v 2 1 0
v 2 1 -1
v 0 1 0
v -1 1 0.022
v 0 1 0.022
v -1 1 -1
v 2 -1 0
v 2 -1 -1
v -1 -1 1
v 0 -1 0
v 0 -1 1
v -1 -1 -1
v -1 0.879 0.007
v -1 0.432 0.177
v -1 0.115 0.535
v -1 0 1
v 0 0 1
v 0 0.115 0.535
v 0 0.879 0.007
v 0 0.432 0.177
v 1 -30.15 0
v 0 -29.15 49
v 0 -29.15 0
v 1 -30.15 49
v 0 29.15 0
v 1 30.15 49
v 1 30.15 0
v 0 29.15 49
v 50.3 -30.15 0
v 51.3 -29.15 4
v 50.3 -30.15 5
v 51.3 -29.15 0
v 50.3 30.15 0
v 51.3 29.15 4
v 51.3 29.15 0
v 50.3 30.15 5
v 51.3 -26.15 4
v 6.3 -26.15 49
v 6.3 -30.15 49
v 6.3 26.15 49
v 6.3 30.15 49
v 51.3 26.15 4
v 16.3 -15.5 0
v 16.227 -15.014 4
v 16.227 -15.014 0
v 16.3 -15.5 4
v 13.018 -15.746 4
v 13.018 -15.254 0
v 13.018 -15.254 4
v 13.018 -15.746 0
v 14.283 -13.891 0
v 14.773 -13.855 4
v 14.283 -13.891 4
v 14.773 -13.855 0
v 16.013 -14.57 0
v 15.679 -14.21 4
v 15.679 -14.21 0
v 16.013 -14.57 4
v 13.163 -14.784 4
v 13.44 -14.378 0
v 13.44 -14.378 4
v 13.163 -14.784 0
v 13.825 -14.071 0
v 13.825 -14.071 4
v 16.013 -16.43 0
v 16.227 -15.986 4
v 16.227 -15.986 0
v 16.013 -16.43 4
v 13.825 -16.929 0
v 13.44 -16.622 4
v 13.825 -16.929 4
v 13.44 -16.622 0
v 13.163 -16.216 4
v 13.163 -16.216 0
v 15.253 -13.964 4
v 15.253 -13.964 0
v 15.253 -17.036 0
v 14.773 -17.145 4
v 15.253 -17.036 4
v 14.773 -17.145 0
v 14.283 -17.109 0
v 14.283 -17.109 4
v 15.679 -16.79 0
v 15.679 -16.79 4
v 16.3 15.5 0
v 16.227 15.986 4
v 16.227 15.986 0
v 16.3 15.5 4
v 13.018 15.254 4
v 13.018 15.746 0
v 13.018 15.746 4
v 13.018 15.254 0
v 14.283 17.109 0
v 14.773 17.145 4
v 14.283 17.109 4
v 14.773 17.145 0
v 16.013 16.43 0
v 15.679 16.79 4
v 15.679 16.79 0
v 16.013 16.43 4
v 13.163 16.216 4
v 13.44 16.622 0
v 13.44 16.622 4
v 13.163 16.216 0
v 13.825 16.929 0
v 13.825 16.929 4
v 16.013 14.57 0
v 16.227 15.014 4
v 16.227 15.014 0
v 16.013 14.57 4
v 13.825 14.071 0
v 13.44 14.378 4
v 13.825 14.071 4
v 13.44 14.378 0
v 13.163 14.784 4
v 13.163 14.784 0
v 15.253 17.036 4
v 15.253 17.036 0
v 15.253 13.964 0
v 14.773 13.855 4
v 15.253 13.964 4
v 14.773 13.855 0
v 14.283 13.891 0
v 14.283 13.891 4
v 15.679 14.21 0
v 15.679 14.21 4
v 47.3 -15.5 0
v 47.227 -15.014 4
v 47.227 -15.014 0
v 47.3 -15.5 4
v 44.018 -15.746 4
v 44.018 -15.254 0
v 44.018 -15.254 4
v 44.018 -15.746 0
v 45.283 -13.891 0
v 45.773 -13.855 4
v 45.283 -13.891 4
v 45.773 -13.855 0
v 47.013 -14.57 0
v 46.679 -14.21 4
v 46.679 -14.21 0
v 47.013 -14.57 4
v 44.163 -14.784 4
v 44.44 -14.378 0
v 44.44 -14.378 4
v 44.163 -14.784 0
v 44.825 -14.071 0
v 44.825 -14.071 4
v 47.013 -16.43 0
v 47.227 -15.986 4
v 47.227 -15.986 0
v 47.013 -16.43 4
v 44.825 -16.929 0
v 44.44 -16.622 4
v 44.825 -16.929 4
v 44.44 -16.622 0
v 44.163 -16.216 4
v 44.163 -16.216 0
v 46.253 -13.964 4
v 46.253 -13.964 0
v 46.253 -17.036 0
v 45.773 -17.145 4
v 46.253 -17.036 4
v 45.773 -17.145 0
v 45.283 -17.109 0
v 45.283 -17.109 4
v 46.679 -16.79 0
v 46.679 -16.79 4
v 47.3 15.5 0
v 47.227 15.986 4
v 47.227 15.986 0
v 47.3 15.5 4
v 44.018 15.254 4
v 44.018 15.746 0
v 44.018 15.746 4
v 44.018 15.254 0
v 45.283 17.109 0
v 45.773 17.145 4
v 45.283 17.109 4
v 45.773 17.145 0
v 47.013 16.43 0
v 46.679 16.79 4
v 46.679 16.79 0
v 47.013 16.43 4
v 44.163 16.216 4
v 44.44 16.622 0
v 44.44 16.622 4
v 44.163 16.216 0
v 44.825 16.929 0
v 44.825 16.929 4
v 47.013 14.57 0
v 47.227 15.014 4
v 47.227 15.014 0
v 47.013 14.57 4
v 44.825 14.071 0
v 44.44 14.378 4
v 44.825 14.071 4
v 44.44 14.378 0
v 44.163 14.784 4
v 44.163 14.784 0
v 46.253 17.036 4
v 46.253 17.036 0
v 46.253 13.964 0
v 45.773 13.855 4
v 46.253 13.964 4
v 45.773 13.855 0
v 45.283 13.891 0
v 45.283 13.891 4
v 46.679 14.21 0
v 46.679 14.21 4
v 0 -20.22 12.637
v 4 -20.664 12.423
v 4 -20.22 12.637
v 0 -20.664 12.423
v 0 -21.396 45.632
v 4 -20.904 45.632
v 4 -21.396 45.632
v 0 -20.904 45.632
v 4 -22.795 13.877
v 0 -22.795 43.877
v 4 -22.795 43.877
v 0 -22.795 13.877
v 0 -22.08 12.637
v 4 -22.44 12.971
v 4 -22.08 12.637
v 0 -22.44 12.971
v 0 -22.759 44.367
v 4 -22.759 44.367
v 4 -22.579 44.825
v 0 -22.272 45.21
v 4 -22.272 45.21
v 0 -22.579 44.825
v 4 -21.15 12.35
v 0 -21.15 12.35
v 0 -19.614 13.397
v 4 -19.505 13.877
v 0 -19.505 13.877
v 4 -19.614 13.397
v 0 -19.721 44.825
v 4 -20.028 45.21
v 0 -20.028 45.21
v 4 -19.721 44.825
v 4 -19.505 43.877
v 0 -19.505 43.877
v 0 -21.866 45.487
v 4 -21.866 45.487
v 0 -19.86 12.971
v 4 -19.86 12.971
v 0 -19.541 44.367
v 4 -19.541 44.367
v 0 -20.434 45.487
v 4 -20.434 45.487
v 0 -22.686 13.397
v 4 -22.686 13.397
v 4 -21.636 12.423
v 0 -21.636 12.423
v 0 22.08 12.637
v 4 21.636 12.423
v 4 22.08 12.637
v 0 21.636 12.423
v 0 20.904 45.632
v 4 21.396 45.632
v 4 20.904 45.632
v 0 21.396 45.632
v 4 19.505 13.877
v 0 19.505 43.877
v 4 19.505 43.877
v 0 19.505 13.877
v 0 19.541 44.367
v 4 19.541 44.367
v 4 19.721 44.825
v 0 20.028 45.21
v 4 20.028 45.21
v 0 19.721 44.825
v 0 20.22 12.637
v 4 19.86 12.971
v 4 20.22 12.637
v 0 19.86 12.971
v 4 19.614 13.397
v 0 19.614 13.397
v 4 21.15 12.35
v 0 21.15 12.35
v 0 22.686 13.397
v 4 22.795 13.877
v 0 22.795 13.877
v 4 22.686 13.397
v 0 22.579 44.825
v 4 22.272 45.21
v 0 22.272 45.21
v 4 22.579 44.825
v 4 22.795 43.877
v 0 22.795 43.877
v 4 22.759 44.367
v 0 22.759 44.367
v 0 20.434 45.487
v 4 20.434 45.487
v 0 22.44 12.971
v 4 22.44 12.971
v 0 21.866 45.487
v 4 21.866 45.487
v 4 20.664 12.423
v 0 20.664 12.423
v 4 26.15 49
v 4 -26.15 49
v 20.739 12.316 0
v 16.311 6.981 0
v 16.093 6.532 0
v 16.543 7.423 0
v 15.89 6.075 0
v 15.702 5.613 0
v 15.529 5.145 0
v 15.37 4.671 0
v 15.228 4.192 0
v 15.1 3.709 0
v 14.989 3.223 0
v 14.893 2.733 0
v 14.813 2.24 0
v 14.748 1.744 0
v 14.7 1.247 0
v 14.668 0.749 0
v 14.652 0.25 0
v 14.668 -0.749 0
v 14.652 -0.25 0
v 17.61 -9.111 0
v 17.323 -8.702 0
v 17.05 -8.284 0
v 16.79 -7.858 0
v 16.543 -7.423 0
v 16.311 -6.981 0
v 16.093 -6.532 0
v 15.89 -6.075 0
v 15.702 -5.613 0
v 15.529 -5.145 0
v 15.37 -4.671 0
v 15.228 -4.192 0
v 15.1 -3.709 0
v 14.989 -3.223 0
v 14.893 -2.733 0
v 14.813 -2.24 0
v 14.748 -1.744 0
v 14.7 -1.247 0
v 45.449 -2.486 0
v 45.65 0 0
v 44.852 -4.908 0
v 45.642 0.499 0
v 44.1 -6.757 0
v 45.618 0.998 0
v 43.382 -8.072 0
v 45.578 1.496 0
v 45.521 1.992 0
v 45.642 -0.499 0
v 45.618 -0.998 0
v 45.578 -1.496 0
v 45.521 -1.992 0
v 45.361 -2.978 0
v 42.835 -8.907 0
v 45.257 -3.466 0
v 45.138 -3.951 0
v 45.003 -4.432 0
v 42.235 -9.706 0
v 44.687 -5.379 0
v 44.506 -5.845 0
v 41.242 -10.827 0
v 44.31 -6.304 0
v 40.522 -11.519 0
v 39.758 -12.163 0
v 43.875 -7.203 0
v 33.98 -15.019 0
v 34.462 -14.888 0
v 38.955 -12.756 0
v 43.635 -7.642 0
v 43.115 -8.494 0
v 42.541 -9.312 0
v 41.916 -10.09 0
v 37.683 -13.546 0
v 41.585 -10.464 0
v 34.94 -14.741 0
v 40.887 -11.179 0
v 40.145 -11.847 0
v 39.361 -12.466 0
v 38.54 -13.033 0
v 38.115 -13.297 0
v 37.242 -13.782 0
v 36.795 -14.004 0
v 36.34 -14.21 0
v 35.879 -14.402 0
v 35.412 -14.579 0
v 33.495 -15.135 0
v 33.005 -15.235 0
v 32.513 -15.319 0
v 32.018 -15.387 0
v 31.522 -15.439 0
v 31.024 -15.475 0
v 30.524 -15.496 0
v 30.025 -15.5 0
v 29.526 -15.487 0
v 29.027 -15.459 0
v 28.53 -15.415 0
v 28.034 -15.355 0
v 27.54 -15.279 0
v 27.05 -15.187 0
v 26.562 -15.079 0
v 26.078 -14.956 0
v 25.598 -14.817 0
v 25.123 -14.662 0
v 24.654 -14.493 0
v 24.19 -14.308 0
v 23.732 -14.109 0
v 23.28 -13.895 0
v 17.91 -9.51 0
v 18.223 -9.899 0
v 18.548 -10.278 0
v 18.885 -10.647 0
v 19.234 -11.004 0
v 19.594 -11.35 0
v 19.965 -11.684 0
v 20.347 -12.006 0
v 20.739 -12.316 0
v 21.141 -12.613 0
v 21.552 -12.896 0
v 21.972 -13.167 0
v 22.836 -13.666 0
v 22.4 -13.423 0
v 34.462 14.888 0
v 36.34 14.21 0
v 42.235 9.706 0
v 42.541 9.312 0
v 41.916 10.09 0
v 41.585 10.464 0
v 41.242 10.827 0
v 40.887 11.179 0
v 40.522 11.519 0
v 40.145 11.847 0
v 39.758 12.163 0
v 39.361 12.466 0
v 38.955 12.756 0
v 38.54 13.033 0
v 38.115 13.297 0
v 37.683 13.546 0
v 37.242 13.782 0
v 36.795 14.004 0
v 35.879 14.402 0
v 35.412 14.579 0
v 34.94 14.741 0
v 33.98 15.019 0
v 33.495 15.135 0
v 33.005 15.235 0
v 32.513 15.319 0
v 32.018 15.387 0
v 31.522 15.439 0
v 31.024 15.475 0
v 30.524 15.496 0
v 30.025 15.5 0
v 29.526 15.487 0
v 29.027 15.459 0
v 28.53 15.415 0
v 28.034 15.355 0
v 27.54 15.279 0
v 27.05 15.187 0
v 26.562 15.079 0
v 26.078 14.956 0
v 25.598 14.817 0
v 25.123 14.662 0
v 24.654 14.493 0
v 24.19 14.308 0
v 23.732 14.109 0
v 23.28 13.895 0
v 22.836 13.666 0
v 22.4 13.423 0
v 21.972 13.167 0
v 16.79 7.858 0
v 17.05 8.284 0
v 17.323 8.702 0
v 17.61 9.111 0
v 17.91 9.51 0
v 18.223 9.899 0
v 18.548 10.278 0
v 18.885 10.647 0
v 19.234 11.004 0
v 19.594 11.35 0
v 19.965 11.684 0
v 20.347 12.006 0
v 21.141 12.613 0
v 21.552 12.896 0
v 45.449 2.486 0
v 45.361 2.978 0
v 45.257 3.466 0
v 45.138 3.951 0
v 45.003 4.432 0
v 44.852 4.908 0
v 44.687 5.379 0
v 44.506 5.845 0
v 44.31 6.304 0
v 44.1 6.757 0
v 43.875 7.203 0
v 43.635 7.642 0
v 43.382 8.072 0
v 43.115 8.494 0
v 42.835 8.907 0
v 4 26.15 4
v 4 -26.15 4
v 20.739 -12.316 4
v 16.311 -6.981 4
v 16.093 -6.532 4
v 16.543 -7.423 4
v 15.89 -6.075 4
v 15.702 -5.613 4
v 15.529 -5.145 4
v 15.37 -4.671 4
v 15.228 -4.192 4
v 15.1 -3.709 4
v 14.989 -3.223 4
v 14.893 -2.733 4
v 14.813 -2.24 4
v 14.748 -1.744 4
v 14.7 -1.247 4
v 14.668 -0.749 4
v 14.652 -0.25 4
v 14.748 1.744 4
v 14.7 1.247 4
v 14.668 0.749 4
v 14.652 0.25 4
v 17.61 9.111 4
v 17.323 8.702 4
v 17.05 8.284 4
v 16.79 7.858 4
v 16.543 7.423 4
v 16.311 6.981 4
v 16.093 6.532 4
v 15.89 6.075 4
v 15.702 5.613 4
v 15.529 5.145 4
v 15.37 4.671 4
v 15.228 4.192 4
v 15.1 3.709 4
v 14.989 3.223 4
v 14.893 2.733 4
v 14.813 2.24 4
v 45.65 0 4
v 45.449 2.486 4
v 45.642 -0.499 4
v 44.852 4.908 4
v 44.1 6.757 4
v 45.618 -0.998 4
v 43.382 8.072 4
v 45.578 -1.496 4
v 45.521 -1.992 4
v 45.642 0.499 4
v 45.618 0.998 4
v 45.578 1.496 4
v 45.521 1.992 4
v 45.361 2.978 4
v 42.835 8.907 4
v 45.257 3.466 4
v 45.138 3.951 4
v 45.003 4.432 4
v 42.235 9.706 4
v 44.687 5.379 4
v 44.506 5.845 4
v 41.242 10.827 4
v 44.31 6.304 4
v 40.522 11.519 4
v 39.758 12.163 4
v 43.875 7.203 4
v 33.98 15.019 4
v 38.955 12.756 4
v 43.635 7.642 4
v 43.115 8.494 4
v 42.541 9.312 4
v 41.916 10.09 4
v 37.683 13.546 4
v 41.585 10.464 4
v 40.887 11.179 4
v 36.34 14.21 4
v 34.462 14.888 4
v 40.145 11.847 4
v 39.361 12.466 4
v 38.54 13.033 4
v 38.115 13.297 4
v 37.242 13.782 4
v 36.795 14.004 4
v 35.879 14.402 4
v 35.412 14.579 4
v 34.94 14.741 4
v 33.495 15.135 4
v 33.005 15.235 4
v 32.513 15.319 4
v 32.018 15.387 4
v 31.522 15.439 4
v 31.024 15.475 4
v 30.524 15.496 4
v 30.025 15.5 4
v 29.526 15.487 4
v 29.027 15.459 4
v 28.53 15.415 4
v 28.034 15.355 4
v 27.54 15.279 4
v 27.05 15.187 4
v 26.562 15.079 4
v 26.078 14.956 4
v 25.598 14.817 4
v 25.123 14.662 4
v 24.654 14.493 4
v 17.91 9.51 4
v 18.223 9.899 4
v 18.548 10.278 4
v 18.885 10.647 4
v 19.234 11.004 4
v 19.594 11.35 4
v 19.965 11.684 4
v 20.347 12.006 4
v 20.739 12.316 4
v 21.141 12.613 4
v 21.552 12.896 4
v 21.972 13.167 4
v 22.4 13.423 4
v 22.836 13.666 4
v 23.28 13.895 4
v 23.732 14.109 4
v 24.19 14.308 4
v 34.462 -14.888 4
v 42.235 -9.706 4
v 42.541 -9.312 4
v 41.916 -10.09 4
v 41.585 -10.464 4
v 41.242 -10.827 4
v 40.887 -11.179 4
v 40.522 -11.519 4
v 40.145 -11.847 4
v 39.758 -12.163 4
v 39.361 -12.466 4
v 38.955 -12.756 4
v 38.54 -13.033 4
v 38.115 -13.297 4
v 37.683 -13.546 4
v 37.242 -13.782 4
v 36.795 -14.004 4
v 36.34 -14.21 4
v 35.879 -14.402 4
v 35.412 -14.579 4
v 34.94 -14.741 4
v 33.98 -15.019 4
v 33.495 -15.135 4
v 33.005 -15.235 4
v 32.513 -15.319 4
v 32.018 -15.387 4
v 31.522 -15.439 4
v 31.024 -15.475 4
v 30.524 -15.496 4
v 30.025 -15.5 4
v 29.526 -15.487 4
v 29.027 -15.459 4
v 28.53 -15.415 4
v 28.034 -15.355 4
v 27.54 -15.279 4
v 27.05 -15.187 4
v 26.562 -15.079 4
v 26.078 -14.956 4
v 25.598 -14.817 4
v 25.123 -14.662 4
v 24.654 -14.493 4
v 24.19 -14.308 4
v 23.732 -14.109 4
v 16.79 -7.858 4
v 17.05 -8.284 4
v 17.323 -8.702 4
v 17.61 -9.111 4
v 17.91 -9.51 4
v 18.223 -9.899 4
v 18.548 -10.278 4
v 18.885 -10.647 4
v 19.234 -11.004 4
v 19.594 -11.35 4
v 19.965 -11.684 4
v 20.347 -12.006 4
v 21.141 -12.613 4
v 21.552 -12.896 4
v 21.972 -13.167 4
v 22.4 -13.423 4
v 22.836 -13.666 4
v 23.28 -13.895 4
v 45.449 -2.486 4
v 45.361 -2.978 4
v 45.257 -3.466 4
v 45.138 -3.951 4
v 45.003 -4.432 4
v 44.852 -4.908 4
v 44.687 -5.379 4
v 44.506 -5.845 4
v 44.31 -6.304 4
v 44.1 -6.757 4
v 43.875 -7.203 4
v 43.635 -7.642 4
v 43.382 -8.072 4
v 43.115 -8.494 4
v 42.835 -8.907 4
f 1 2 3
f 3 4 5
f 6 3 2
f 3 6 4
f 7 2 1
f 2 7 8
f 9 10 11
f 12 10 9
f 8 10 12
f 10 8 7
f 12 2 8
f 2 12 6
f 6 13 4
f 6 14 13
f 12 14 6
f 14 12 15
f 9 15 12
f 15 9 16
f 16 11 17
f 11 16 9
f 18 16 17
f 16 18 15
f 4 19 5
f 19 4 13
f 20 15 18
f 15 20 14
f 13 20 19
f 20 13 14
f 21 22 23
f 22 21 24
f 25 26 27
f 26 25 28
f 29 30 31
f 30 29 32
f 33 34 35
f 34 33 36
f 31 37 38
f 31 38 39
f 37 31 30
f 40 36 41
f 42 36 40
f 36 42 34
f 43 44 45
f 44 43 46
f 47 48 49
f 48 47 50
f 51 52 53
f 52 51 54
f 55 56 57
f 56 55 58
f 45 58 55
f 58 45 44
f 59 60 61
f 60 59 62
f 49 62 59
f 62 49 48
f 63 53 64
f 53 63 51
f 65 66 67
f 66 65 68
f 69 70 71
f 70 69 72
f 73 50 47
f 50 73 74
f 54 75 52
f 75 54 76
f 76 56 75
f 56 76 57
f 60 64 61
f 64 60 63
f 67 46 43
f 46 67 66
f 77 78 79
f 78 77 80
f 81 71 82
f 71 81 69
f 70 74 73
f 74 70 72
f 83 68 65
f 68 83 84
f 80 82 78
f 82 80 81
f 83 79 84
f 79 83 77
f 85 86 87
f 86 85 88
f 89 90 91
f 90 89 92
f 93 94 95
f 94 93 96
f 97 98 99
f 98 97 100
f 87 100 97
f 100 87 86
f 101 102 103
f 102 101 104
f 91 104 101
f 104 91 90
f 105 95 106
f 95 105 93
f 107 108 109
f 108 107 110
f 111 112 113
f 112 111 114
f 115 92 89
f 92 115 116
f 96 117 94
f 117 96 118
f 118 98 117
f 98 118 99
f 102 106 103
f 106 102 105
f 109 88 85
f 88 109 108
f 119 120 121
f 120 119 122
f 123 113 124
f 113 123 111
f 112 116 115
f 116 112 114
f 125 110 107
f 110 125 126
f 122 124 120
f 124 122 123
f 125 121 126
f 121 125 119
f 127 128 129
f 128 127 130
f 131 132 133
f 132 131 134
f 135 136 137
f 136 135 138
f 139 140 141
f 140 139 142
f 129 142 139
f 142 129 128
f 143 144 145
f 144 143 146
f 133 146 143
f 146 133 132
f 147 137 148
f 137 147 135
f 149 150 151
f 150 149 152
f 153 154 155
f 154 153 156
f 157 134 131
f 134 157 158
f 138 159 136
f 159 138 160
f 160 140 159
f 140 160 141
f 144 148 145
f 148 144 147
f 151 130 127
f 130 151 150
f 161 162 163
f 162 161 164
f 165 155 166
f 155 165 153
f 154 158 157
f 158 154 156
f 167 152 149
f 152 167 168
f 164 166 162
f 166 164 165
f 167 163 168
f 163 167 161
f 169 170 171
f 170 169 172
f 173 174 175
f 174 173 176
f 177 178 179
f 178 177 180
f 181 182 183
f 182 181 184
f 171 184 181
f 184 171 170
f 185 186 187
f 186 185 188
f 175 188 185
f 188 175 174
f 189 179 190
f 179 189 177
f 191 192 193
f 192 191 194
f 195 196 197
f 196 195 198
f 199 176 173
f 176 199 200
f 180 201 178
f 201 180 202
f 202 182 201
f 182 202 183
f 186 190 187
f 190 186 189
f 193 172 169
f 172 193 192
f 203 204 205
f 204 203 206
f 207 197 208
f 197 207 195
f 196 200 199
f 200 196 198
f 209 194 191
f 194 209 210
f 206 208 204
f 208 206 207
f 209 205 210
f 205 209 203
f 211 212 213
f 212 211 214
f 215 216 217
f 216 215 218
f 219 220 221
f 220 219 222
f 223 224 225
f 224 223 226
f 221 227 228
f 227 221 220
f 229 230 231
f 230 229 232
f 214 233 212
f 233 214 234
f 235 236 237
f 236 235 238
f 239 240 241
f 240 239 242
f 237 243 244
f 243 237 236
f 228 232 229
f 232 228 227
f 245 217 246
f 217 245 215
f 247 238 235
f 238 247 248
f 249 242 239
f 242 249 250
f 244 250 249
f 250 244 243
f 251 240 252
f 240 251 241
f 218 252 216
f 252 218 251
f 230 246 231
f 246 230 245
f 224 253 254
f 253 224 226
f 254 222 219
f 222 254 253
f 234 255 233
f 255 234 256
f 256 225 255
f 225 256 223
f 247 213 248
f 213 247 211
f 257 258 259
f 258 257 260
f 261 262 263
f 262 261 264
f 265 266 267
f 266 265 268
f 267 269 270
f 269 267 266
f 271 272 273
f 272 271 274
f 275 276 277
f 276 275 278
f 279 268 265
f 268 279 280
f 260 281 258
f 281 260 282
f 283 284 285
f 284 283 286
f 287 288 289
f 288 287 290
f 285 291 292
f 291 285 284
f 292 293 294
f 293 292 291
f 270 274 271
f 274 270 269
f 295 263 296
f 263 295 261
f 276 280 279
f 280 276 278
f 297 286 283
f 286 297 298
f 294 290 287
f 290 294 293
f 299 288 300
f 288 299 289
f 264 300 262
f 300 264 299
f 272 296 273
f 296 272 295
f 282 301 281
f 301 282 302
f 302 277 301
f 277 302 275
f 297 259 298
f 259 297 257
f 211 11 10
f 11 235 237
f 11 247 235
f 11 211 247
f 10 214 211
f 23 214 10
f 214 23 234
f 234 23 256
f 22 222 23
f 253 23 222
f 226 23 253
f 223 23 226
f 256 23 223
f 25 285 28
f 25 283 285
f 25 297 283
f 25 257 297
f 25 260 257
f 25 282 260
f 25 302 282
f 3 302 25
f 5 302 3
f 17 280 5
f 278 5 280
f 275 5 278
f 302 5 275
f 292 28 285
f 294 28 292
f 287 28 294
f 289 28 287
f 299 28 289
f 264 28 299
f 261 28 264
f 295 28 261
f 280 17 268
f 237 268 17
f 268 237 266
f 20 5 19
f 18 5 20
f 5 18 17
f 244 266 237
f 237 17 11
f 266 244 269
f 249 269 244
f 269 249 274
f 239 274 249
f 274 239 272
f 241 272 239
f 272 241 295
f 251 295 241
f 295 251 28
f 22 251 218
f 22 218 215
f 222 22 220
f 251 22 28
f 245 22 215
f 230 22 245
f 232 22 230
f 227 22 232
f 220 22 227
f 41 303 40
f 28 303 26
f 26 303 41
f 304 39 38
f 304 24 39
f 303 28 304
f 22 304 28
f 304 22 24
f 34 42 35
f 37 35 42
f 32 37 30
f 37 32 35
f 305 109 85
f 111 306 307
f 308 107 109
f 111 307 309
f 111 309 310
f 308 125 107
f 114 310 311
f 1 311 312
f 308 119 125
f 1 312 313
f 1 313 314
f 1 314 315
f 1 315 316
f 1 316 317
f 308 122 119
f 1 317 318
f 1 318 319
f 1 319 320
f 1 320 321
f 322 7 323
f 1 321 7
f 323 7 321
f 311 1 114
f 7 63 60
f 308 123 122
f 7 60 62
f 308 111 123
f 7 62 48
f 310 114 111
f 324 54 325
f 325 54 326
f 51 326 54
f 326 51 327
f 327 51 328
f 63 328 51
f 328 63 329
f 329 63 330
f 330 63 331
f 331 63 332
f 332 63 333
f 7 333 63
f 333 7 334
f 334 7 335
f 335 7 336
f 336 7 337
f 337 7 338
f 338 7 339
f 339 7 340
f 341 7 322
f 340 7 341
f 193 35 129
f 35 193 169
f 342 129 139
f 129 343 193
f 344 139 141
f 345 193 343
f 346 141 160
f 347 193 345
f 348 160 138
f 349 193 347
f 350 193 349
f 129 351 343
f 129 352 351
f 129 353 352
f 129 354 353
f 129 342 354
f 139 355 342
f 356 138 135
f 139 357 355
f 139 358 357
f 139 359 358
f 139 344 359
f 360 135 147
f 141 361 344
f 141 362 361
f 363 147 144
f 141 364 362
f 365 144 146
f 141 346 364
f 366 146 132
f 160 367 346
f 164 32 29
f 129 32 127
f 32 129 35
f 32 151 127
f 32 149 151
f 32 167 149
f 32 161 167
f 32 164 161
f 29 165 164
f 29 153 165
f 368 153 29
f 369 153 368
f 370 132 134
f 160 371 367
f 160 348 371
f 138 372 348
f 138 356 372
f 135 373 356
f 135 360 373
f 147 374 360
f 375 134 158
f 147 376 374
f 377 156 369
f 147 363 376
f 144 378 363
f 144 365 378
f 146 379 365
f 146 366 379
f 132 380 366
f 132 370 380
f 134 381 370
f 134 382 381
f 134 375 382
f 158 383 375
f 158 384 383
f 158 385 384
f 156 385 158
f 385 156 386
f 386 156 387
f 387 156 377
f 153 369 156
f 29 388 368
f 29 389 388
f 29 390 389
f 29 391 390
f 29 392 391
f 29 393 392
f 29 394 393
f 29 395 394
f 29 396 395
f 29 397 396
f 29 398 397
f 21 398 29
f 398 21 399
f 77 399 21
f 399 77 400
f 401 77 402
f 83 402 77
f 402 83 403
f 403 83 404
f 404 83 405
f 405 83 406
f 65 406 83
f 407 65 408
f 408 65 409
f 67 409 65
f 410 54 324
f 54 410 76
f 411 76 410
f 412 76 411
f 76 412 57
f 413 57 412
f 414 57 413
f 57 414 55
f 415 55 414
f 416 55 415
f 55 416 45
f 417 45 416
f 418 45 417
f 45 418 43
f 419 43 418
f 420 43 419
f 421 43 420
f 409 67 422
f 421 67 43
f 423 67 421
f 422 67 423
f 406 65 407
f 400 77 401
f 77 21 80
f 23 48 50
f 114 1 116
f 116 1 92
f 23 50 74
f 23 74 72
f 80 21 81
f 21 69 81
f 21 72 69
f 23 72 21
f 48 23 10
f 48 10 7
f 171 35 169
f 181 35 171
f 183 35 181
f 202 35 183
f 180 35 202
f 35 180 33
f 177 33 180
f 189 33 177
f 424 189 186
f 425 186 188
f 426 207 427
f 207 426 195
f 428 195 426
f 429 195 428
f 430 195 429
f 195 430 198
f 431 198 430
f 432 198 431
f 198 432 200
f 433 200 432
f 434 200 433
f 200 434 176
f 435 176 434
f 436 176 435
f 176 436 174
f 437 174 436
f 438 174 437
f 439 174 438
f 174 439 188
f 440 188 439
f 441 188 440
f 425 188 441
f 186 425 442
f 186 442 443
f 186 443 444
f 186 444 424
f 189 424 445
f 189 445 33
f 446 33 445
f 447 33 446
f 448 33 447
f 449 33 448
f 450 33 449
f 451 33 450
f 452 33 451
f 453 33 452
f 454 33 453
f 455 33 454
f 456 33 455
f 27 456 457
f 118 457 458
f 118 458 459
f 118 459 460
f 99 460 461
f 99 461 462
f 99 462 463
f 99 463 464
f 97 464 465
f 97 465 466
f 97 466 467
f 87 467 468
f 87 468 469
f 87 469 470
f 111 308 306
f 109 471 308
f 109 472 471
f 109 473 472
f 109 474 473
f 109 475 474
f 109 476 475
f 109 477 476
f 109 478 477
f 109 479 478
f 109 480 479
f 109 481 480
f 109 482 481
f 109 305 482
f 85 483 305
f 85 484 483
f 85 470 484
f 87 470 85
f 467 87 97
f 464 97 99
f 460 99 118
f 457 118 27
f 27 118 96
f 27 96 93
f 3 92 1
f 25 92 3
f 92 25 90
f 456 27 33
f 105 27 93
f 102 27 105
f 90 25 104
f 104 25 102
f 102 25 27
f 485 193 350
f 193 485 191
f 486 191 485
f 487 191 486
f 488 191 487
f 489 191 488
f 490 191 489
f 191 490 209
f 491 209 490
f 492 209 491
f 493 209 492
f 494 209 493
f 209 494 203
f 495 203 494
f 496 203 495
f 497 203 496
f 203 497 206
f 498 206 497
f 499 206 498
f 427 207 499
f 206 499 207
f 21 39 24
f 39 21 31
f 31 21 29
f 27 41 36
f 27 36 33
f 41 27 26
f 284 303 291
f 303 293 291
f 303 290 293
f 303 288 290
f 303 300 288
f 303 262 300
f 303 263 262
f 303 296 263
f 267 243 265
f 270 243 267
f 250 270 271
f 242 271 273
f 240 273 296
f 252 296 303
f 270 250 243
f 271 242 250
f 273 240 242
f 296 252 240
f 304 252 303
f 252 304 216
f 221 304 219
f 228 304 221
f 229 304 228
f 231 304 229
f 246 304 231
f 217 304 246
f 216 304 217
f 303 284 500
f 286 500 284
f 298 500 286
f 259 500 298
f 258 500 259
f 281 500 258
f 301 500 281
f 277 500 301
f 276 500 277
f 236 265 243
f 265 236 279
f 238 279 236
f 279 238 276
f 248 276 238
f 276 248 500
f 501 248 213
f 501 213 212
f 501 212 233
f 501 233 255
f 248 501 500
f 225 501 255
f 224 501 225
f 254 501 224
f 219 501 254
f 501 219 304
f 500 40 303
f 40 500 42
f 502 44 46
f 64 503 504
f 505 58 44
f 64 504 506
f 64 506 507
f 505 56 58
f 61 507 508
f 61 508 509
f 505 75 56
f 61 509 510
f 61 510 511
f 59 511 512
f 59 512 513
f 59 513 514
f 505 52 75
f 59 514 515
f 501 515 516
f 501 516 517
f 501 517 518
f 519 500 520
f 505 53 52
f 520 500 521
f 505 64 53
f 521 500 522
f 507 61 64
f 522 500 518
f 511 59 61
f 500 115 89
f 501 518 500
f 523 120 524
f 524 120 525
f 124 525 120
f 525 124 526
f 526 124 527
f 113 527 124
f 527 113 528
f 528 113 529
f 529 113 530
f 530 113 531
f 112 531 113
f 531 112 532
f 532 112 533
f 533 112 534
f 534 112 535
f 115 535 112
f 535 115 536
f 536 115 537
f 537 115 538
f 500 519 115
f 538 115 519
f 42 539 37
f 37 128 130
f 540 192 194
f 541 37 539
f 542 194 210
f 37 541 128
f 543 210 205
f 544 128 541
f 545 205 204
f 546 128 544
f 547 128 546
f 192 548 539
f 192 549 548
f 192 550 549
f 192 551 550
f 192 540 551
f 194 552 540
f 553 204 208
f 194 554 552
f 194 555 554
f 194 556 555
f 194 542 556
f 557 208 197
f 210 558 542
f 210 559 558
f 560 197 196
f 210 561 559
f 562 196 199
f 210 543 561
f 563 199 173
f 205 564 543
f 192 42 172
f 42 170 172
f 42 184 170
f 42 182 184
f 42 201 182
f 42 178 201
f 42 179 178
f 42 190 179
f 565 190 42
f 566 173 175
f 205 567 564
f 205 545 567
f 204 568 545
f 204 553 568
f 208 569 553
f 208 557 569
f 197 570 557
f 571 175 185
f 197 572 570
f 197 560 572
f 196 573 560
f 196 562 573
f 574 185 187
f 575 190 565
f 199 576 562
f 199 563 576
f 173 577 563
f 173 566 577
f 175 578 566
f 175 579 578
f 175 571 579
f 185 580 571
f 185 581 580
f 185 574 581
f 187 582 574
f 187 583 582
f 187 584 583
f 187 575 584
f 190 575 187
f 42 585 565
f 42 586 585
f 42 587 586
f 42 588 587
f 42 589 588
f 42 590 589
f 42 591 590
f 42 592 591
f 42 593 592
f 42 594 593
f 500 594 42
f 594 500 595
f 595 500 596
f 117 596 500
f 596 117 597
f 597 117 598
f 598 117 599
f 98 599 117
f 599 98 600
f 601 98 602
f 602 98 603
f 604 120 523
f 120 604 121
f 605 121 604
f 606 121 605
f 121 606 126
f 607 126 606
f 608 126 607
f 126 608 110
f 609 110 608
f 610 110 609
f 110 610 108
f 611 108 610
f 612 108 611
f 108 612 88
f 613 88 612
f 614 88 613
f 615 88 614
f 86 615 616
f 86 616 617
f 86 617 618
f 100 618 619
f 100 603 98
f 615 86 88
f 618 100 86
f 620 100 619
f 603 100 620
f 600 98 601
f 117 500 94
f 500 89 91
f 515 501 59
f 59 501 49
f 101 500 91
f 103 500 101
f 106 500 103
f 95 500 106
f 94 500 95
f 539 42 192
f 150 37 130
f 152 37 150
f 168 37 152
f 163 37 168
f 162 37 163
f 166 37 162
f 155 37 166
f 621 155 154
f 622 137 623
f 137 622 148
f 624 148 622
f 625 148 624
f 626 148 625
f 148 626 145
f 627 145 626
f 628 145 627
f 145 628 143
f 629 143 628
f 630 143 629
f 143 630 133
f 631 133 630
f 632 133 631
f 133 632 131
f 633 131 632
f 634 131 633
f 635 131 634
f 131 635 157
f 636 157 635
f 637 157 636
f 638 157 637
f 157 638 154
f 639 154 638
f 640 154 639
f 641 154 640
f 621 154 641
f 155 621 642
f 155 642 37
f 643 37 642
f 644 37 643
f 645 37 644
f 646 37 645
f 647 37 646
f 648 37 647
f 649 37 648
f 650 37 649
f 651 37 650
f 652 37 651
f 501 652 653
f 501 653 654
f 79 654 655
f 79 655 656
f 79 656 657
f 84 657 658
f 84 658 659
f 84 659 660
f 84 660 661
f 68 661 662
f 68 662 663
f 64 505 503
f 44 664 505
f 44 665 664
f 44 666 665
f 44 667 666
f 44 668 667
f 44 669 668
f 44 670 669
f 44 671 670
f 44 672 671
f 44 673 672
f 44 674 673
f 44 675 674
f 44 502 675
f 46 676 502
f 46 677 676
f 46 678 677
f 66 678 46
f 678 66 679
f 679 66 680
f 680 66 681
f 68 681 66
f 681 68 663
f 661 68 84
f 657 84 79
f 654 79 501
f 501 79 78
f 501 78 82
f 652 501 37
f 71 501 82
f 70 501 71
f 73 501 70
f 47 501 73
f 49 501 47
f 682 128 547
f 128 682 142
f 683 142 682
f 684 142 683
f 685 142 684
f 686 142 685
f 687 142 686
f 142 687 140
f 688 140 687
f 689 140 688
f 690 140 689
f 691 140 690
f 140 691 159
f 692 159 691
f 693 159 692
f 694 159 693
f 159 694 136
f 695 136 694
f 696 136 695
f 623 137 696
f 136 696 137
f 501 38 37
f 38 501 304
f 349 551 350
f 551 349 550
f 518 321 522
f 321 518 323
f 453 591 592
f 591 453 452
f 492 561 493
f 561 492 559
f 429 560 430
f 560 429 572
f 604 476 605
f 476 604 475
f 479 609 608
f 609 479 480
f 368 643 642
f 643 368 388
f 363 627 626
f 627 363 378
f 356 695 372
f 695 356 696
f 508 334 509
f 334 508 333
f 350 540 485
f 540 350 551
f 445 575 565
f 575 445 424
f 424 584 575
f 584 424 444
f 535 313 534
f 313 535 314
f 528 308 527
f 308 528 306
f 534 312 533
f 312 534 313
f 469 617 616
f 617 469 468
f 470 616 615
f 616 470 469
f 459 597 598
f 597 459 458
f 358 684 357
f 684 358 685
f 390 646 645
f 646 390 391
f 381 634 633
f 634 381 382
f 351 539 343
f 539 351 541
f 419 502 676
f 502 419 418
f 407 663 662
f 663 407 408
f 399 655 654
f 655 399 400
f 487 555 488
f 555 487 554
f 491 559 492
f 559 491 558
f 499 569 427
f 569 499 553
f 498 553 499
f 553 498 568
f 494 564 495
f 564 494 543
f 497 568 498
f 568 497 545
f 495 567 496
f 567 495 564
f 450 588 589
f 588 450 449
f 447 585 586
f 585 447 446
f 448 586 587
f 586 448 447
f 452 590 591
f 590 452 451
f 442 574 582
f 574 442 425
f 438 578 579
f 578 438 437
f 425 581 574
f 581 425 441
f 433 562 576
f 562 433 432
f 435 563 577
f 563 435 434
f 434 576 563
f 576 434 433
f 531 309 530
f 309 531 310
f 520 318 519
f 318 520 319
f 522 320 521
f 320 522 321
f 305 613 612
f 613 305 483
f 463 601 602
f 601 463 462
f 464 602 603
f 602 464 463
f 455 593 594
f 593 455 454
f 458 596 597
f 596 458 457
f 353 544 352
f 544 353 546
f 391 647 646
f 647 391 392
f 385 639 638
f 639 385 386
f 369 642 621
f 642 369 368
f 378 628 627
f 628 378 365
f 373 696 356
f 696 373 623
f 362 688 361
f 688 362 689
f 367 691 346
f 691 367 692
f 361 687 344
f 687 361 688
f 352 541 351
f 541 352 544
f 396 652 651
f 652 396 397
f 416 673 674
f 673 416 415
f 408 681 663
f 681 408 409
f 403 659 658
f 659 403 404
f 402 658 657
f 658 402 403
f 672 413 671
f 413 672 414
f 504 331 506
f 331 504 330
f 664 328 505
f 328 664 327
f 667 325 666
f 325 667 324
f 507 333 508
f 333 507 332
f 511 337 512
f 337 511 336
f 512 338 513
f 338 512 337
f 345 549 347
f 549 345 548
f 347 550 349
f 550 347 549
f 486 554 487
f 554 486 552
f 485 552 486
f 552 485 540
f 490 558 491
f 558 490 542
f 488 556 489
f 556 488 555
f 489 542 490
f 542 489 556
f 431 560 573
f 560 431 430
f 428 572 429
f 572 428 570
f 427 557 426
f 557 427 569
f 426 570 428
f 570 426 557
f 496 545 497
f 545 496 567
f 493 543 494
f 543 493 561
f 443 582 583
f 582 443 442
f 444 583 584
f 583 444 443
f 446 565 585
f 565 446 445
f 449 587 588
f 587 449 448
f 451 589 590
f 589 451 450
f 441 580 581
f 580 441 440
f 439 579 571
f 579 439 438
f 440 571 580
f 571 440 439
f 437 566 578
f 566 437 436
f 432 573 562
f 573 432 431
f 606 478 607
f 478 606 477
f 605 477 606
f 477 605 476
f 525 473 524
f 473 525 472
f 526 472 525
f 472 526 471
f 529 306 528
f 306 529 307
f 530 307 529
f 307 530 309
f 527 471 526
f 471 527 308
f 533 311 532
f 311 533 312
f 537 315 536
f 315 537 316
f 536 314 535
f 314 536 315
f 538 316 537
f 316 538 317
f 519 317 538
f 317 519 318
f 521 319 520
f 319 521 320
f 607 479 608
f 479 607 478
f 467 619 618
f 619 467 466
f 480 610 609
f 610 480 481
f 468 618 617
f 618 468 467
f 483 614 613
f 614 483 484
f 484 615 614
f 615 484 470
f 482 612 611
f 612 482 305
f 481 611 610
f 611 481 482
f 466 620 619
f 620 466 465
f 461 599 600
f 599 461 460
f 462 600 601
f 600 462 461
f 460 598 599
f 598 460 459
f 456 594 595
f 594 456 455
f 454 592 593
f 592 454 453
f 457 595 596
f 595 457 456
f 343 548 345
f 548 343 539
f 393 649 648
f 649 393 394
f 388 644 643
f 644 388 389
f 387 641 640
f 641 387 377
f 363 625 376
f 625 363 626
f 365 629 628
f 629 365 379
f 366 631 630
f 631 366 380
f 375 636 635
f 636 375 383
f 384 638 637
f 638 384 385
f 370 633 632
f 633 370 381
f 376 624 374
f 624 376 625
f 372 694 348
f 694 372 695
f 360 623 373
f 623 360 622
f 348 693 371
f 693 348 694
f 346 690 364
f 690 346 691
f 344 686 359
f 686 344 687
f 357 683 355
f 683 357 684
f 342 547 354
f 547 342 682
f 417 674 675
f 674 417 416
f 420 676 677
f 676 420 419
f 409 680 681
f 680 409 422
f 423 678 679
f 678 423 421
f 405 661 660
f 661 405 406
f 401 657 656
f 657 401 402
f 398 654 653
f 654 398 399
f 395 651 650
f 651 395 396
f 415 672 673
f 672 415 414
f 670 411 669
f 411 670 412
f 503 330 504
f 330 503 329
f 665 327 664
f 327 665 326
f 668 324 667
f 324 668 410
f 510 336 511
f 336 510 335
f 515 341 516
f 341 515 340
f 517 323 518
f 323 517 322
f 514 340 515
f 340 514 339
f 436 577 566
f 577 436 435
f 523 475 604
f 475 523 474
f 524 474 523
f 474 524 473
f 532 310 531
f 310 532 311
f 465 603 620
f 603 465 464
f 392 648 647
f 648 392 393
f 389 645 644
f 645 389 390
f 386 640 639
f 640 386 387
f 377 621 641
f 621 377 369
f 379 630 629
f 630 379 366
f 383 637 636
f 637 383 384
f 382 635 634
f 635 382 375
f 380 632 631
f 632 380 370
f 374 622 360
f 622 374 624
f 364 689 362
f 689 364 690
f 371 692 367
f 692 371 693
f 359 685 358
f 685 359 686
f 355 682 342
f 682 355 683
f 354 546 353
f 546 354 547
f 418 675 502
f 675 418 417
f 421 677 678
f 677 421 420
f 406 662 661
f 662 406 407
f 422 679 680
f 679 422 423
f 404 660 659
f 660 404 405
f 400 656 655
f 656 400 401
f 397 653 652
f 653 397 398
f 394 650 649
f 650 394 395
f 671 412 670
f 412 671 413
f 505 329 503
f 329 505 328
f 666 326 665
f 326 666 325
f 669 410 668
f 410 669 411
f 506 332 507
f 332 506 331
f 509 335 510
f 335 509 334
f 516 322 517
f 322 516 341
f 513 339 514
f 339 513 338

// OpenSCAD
// file: oscad_utils/bolts.scad
/*
 *    OpenScad functions to make bolt holes
 *
 *    Copyright (C) 2016 Felipe Machado
 *    Universidad Rey Juan Carlos, Spain
 *    https://github.com/felipe-m
 *    License: LGPL 3.0 or later
 *
 *    to use this functions include in your file:
 * use <bolts.scad>
 *    if not in the same directory:
 * use <PATH_TO/bolts.scad>
 *    dont use 'include' instead of 'use' so you dont get the objects
 *    created in this file
*/


include <bolt_sizes.scad>

// the hole for the bolt shank and the nut
// Tolerances have to be included
// r_shank: Radius of the shank (tolerance included)
// l_bolt: total length of the bolt: head & shank
// r_head: radius of the head (tolerance included)
// l_head: length of the head
// hex_head: inidicates if the head is hexagonal or rounded
//            1: hexagonal
//            0: rounded
// h_layer3d: height of the layer for printing, if 0, means that the support
//            is not needed
// mnfold: 1 if you want 1 mm on top and botton to avoid non-manifold
//             pieces after makeing differences


module bolt_hole (r_shank, l_bolt, r_head, l_head, hex_head, h_layer3d, mnfold)
{
  union () {
    // we make it all the way, although it is not necessary because
    // on the lower part it will be also the nut 
    // if mnfold == 1 it will make the translations and make the piece 
    // larger
    translate([0,0,-mnfold])
      cylinder (r= r_shank, h= l_bolt+2*mnfold);
      //cylinder (r= r_shank, h= l_bolt+2*mnfold, $fa=1, $fs=0.5);
   if (hex_head == 0) {
      translate([0,0,-mnfold])
        cylinder (r= r_head, h= l_head+mnfold);  
        //cylinder (r= r_head, h= l_head+mnfold, $fa=1, $fs=0.5);  
   } else {
      translate([0,0,-mnfold])
      cylinder (r= r_head, h= l_head+mnfold, $fn=6);  
   }
    
  // This is a triangle that it is barely supported by the bolt head
  // and it will support the circle above 
  // In a regular triangle the apotheme (in radius) is twice
  // the circumradius (r)
  // Intersection with the hexagon to take the vertexs away, because
  // they are outside the hexagon
  if ( h_layer3d > 0) { // we don't do this if h_layer3d == 0
    intersection () {  
      rotate([0,0,30])translate([0,0,l_head])
        cylinder (r= r_shank*2, h=h_layer3d, $fn=3);
      // take vetexs away:
      if (hex_head == 0) {
        translate([0,0,l_head])
          cylinder (r= r_head, h= h_layer3d);       
          //cylinder (r= r_head, h= h_layer3d, $fa=1, $fs=0.5);       
      } else {
        translate([0,0,l_head])
          cylinder (r= r_head, h= h_layer3d, $fn=6);           
      }
    }
        // 1.15 is the relationship between the Radius and the Apothem
    // of the hexagon: sqrt(3)/2 . I make it slightly smaller
    translate([0,0,l_head+h_layer3d])
      //rotate ([0,0,30])
      cylinder (r=r_shank*1.15, h=h_layer3d, $fn=6);  
  
  }
 
 }  
  
}



bolt_hole (r_shank= m4_r_tol, l_bolt=10, r_head=m4_head_r_tol, l_head=m4_head_l, h_layer3d);


bolt_hole (r_shank = m4_r_tol, l_bolt=10, r_head=m4_head_r_tol, l_head=m4_head_l, hex_head=1, h_layer3d=h_layer3d, mnfold=1);

translate ([10,0,0])
#bolt_hole (r_shank = m4_r_tol, l_bolt=10, r_head=m4_head_r_tol, l_head=m4_head_l, hex_head=0, h_layer3d=h_layer3d, mnfold=0);
// file: oscad_utils/bolt_sizes.scad
/*
 *    OpenScad constants for bolt
 *
 *    Copyright (C) 2016 Felipe Machado
 *    Universidad Rey Juan Carlos, Spain
 *    https://github.com/felipe-m
 *    License: LGPL 3.0 or later
 *
 *    to use this functions include in your file:
 * include <bolts.scad>
 *    if not in the same directory:
 * include <PATH_TO/bolts.scad>
*/


// Tolerance
tol =  0.4;
// Tolerance for small objects
stol = 0.2;

h_layer3d = 0.3;
//$fa=1;
//$fs=0.5;

// Nuts and bolt sizes
m3_r = 1.5;  
m4_r = 2;    
m5_r = 2.5;  

// Tolerances stol/2 because is the radius
m3_r_tol = m3_r + stol/2;  // M3 diameter 3.2 mm for the tolerance
m4_r_tol = m4_r + stol/2;  // M4 diameter 4.2 mm for the tolerance
m5_r_tol = m5_r + (tol + stol)/4;  // M5 diameter 5.3 mm for the tolerance
//echo ("m3_r_tol", m3_r_tol);
//echo ("m4_r_tol", m4_r_tol);

// -------------- Head sizes DIN-912 bolts
// Head radius DIN-912 bolts
m3_head_r  = 5.5/2;
m4_head_r  = 7/2;
m5_head_r  = 8.5/2;
m6_head_r  = 10/2;
m8_head_r  = 13/2;
m10_head_r = 16/2;

// Head radius DIN-912 bolts with tolerances. 
// divided by 2 because is the radius
m3_head_r_tol  = m3_head_r  + tol/2;
m4_head_r_tol  = m4_head_r  + tol/2;
m5_head_r_tol  = m5_head_r  + tol/2;
m6_head_r_tol  = m6_head_r  + tol/2;
m8_head_r_tol  = m8_head_r  + tol/2;
m10_head_r_tol = m10_head_r + tol/2;

// Head length DIN-912 bolts
m3_head_l = 3;
m4_head_l = 4;
m5_head_l = 4;
m6_head_l = 6;
m8_head_l = 8;

// M3 nut
m3_nut_r = 6.01/2;  // DIN934 M3 nut circumradius
m3_nut_h = 2.4;     // DIN934 M3 nut height

//less tolerance for small numbers. 0.2 (diameter)
m3_nut_r_tol = m3_nut_r + stol/2;  //radius: diam/2
m3_nut_h_tol = m3_nut_h + tol;

// M4 nut
m4_nut_r = 7.66/2;  // DIN934 M4 nut circumradius
m4_nut_h = 3.2;     // DIN934 M4 nut height
m4_nut_ap = 7/2;    // DIN934 M4 nut apotheme

//less tolerance for small numbers. 0.2 (diameter)
m4_nut_r_tol  = m4_nut_r + stol/2;  //radius: diam/2
m4_nut_h_tol  = m4_nut_h + tol;
m4_nut_ap_tol = m4_nut_ap + stol/2; 

// -------------------- DIN 9021 Washers ----------------
// outer radius (or)
m6_wash9021_or = 18 / 2;
// height
m6_wash9021_h = 1.6;
// main file
// Nema motor holder
//----------------------------------------------------------------------------
//-- (c) Felipe Machado
//-- Area of Electronic Technology. Rey Juan Carlos University (urjc.es)
//-- https://github.com/felipe-m
//-- 2019
//----------------------------------------------------------------------------
//-- LGPL Licence
//----------------------------------------------------------------------------
//
//   Creates a holder for a Nema motor
//       __________________
//      ||                ||
//      || O     __     O ||
//      ||    /      \    ||
//      ||   |   1    |   ||
//      ||    \      /    ||
//      || O     __     O ||
//      ||________________|| ..... wall_thick
//      ||_______2________|| ....................>Y
//                                    
//                                    
//                                    motor_xtr_space_d
//                                   :  :
//       ________3_________        3_:__:____________ ..............> X
//      |  ::  :    :  ::  |       |      :     :    |    + motor_thick
//      |__::__:_1__:__::__|       2......:..1..:....|....:
//      ||                ||       | :              .
//      || ||          || ||       | :           .
//      || ||          || ||       | :        .
//      || ||          || ||       | :      .
//      || ||          || ||       | :   .
//      ||________________||       |_: .
//      ::       :                 :                 :
//       + reinf_thick             :....tot_d........:
//               :
//               :
//               Z
//
//
//
//
//       __________________ ..................................
//      |  ::  :    :  ::  |                                  :
//      |__::__:_1__:__::__|....................              :
//      ||                ||....+ motor_min_h  :              :
//      || ||          || ||                   :              +tot_h
//      || ||          || ||                   + motor_max_h  :
//      || ||          || ||                   :              :
//      || ||          || ||...................:              :
//      ||________________||...................:.xtr_down.....:
//      :  :            :  :
//      :  :            :  :
//      :  :............:  :
//      :   bolt_wall_sep  :
//      :                  :
//      :                  :
//      :.....tot_w........:
//                       ::
//                        motor_xtr_space
//
//

include <oscad_utils/bolt_sizes.scad> // include to use the constants
use <oscad_utils/fillet.scad>
use <oscad_utils/bolts.scad>


fillet_dif_x (r=1, h=1, ydir=-1, zdir=-1, fillet=1);

//    Parameters:
//    -----------

// use these values for fast generation time but rough surfaces
//$fa=1;
//$fs=1.5;
// use these values for slow generation time but defined surfaces
$fa=0.5;
$fs=0.5;

// --------------- PARAMETERS (can be changed) ----------
// Nema Size, choose the NEMA size of your motor: 8, 11, 14, 17, 23, 34, 42
nema_size = 17;

//  thickness in mm of the side where the holder will be screwed to
wall_thick = 4;

//  thickness in mm of the top side where the motor will be screwed to
motor_thick = 4;

//  thickness of the reinforcement walls
reinf_thick = 4;

//  distance of from the inner top side to the top hole of the bolts to 
//  attach the holder (see drawing)
motor_min_h = 10;

// distance of from the inner top side to the bottom hole of the bolts to 
// attach the holder
motor_max_h = 40;

// extra separation between the motor and the sides
motor_xtr_space = 5;

// extra separation between the motor and the side of the wall
motor_xtr_space_d = 5;

// extra space from the motor_max_h to the end
xtr_down = 5;

// separation of the wall bolts, if 0, it will be the motor width
// has to be smaller than the total width
set_bolt_wall_sep = 0;


// metric of the bolts to attach the holder (diameter of the shank in mm)
bolt_wall_d = 3;

// radius of the chamfer
chmf_r = 1;

// motor hole radius: the hole for the motor circle that is with the axis
// if 0, will take the half of the distance of the bolts
set_motor_hole_r = 0;

// tolerances: 0.4 or 0.3 mm
TOL = 0.3;
STOL = TOL / 2;  //smaller tolerance

// -- DO NOT CHANGE ANYTHING UNDER THIS LINE UNLESS YOU KNOW WHAT YOU 
// ---             ARE DOING

 


// Due to the scope of variables in OpenSCAD we cannot use if

// width of the motor
motor_w = (nema_size == 8) ?
              20.2 : (
          (nema_size == 11) ?
              28.2 : (
          (nema_size == 14) ?
              35.2 : (
          (nema_size == 17) ?
              42.3 : (
          (nema_size == 23) ?
              56.4 : (
          (nema_size == 34) ?
              86.0 : (
          (nema_size == 42) ?
              110.0 : 
              0)  //not supported    
              )))));    
              
echo(motor_w);

// separation of the bolt holes of the motor 
motor_bolt_sep = (nema_size == 8) ?
              16.0 : (
          (nema_size == 11) ?
              23.0 : (
          (nema_size == 14) ?
              26.0 : (
          (nema_size == 17) ?
              31.0 : (
          (nema_size == 23) ?
              47.1 : (
          (nema_size == 34) ?
              69.6 : (
          (nema_size == 42) ?
              89.0 : 
              0)  //not supported    
              )))));    
              
echo(motor_bolt_sep);

//  motor bolt holes diameter 
// check datasheet, dimensions may vary
motor_bolt_d = (nema_size == 8) ?
              2 : (
          (nema_size == 11) ?
              2 : (
          (nema_size == 14) ?
              3 : (
          (nema_size == 17) ?
              3 : (
          (nema_size == 23) ?
              5 : (
          (nema_size == 34) ?
              5 : (
          (nema_size == 42) ?
              8 : 
              0)  //not supported    
              )))));    
              
echo(motor_bolt_d);


// if not defined motor_hole_r:
motor_hole_r = (set_motor_hole_r == 0) ?
               motor_bolt_sep/2 : set_motor_hole_r;

// if not defined the wall bolt separation
bolt_wall_sep = ( set_bolt_wall_sep == 0) ?
                  motor_w : set_bolt_wall_sep;



// radius of the motor bolts including tolerances
motor_bolt_r_tol = motor_bolt_d/2 + STOL;

// radius of the wall bolts including tolerances
bolt_wall_r_tol = bolt_wall_d/2 + STOL;

// total width: the reinforcement + motor width + xtr_space
tot_w = 2* reinf_thick + motor_w + 2 * motor_xtr_space;

// total height:
tot_h = motor_thick + motor_max_h + xtr_down;

// total depth:
tot_d = wall_thick + motor_w + motor_xtr_space_d;

module nemamotor_holder()
{
  difference(){
    //  --------------- step 01 ---------------------------      
    //  rectangular cuboid with basic dimensions
    // 
    //                    Z
    //                    :
    //                    :
    //             :.....tot_w.......
    //             :______:__________:
    //             /                /|
    //            /                / |
    //           /                /  |
    //          /                /   |
    //       ../________________/    |
    //       : |                |    | 
    //       : |                |    |...............Y
    //       : |                |   /     . 
    //  tot_h: |                |  /     . tot_d
    //       : |                | /     . 
    //       :.|________________|/......
    //                .
    //               .
    //              X 
    //
    translate([0,-tot_w/2,0])cube([tot_d,tot_w,tot_h]);


    //  --------------- step 02 ---------------------------      
    //  chamfering the 4 vertical edges (marked with H)
    //
    //                   Z
    //                   :
    //                   :
    //            :.....tot_w.......
    //            :______:__________:
    //            /                /H chamfering
    //           /                / H
    //          /                /  H
    //         /                /   H
    //      ../________________/    H
    //      : H                H    H 
    //      : H                H    H...............Y
    //      : H                H   /     . 
    // tot_h: H                H  /     . tot_d
    //      : H                H /     . 
    //      :.H________________H/......
    //               .
    //              .
    //             X 
    //

    translate ([0,-tot_w/2,0])
      fillet_dif_z (r=chmf_r, h=tot_h,ydir=-1, xdir=-1, fillet=0);
    translate ([0,tot_w/2,0])
      fillet_dif_z (r=chmf_r, h=tot_h,ydir=1, xdir=-1, fillet=0);
    translate ([tot_d,-tot_w/2,0])
      fillet_dif_z (r=chmf_r, h=tot_h,ydir=-1, xdir=1, fillet=0);
    translate ([tot_d,tot_w/2,0])
      fillet_dif_z (r=chmf_r, h=tot_h,ydir=1, xdir=1, fillet=0);

    // --------------- step 03 ---------------------------      
    // Horizontal chamfering the top edge to make a 'triangular' reinforcement
    //
    //     Z
    //     :
    //     :___            . chmf_pos
    //     |    \
    //     |      \
    //     |        \
    //     |          \
    //     |            \
    //     |              \
    //     |________________.....X
    //
    //

    //the radius is the smaller part
    chmf_reinf_r = min(tot_d-wall_thick, tot_h-motor_thick);
    // still in difference
    translate([tot_d,-tot_w/2,tot_h])
      fillet_dif_y (r=chmf_reinf_r, h=tot_w, xdir=1, zdir=1);

    // --------------- step 04 ---------------------------      
    // Hole for the motor
    //
    //               Z                      Z
    //               :                      :
    //       ________:_________             :__
    //      | |              | |            | :  \        
    //      | |              | |            | :    \ 
    //      | |              | |            | :      \
    //      | |              | |            | :        \
    //      | |              | |            | :          \
    //      | |              | |            | :            \
    //      |_|______________|_|            | :..............\...motor_thick
    //      |_|______________|_|..Y         |_________________\..X
    //      : :                             : :
    //      : :                             : :
    //       reinf_thick                     wall_thick

    // still difference:
    translate([wall_thick, -(tot_w-2*reinf_thick)/2, motor_thick])
      cube([tot_d,tot_w-2*reinf_thick, tot_h]);
    
    // --------------- step 05 ---------------------------      
    // Holes for motor bolts, and the central hole
    //
    //   ____________________...............................>Y
    //  | ___________________|.. wall_thick         
    //  | |                | |.. motor_xtr_space..... 
    //  | | O     __     O | | --                   :motor_w/2
    //  | |    /      \    | |   .                  :
    //  | |   |   1    |   | |   .+ motor_bolt_sep ---
    //  | |    \      /    | |   .
    //  | | O     __     O | | --
    //  |_|________________|_| ..... wall_thick
    //            :        : :
    //            :         reinf_thick
    //      :     X      :
    //      :            :
    //      :            :
    //      motor_bolt_sep

    // central hole
    axis_x = wall_thick+motor_xtr_space+motor_w/2;
    translate([axis_x,0,-1])
      cylinder(r=motor_hole_r, h=motor_thick+2);
    for (x_side=[-1,1])
      for (y_side=[-1,1])
        translate([axis_x+x_side*motor_bolt_sep/2, y_side*motor_bolt_sep/2,-1])
          cylinder (r=motor_bolt_r_tol, h=motor_thick+2);

    // --------------- step 06 ---------------------------      
    // Rails to attach the holder
    //
    //           Z               
    //           :                
    //   ________:_________        
    //  | |              | |        
    //  | | ||        || | |-----------------------
    //  | | ||        || | |                       :
    //  | | ||        || | |                       +motor_max_h
    //  | | ||        || | |                       :
    //  | | ||        || | |-------                :
    //  |_|______________|_|.......:+ motor_min_h..: 
    //  |_|______________|_|....:+motor_thick............Y
    //       :         :                   
    //       :.........:
    //
    bothole_pos_z = motor_thick+motor_min_h;
    tophole_pos_z = motor_thick+motor_max_h;
    for (y_side=[-1,1])
      #hull(){
        translate([-1,y_side*bolt_wall_sep/2,bothole_pos_z])
          rotate ([0,90,0])
            cylinder(r=bolt_wall_r_tol, h=wall_thick+2);
        translate([-1,y_side*bolt_wall_sep/2,tophole_pos_z])
          rotate ([0,90,0])
            cylinder(r=bolt_wall_r_tol, h=wall_thick+2);
      }


    }
    
}
nemamotor_holder();
